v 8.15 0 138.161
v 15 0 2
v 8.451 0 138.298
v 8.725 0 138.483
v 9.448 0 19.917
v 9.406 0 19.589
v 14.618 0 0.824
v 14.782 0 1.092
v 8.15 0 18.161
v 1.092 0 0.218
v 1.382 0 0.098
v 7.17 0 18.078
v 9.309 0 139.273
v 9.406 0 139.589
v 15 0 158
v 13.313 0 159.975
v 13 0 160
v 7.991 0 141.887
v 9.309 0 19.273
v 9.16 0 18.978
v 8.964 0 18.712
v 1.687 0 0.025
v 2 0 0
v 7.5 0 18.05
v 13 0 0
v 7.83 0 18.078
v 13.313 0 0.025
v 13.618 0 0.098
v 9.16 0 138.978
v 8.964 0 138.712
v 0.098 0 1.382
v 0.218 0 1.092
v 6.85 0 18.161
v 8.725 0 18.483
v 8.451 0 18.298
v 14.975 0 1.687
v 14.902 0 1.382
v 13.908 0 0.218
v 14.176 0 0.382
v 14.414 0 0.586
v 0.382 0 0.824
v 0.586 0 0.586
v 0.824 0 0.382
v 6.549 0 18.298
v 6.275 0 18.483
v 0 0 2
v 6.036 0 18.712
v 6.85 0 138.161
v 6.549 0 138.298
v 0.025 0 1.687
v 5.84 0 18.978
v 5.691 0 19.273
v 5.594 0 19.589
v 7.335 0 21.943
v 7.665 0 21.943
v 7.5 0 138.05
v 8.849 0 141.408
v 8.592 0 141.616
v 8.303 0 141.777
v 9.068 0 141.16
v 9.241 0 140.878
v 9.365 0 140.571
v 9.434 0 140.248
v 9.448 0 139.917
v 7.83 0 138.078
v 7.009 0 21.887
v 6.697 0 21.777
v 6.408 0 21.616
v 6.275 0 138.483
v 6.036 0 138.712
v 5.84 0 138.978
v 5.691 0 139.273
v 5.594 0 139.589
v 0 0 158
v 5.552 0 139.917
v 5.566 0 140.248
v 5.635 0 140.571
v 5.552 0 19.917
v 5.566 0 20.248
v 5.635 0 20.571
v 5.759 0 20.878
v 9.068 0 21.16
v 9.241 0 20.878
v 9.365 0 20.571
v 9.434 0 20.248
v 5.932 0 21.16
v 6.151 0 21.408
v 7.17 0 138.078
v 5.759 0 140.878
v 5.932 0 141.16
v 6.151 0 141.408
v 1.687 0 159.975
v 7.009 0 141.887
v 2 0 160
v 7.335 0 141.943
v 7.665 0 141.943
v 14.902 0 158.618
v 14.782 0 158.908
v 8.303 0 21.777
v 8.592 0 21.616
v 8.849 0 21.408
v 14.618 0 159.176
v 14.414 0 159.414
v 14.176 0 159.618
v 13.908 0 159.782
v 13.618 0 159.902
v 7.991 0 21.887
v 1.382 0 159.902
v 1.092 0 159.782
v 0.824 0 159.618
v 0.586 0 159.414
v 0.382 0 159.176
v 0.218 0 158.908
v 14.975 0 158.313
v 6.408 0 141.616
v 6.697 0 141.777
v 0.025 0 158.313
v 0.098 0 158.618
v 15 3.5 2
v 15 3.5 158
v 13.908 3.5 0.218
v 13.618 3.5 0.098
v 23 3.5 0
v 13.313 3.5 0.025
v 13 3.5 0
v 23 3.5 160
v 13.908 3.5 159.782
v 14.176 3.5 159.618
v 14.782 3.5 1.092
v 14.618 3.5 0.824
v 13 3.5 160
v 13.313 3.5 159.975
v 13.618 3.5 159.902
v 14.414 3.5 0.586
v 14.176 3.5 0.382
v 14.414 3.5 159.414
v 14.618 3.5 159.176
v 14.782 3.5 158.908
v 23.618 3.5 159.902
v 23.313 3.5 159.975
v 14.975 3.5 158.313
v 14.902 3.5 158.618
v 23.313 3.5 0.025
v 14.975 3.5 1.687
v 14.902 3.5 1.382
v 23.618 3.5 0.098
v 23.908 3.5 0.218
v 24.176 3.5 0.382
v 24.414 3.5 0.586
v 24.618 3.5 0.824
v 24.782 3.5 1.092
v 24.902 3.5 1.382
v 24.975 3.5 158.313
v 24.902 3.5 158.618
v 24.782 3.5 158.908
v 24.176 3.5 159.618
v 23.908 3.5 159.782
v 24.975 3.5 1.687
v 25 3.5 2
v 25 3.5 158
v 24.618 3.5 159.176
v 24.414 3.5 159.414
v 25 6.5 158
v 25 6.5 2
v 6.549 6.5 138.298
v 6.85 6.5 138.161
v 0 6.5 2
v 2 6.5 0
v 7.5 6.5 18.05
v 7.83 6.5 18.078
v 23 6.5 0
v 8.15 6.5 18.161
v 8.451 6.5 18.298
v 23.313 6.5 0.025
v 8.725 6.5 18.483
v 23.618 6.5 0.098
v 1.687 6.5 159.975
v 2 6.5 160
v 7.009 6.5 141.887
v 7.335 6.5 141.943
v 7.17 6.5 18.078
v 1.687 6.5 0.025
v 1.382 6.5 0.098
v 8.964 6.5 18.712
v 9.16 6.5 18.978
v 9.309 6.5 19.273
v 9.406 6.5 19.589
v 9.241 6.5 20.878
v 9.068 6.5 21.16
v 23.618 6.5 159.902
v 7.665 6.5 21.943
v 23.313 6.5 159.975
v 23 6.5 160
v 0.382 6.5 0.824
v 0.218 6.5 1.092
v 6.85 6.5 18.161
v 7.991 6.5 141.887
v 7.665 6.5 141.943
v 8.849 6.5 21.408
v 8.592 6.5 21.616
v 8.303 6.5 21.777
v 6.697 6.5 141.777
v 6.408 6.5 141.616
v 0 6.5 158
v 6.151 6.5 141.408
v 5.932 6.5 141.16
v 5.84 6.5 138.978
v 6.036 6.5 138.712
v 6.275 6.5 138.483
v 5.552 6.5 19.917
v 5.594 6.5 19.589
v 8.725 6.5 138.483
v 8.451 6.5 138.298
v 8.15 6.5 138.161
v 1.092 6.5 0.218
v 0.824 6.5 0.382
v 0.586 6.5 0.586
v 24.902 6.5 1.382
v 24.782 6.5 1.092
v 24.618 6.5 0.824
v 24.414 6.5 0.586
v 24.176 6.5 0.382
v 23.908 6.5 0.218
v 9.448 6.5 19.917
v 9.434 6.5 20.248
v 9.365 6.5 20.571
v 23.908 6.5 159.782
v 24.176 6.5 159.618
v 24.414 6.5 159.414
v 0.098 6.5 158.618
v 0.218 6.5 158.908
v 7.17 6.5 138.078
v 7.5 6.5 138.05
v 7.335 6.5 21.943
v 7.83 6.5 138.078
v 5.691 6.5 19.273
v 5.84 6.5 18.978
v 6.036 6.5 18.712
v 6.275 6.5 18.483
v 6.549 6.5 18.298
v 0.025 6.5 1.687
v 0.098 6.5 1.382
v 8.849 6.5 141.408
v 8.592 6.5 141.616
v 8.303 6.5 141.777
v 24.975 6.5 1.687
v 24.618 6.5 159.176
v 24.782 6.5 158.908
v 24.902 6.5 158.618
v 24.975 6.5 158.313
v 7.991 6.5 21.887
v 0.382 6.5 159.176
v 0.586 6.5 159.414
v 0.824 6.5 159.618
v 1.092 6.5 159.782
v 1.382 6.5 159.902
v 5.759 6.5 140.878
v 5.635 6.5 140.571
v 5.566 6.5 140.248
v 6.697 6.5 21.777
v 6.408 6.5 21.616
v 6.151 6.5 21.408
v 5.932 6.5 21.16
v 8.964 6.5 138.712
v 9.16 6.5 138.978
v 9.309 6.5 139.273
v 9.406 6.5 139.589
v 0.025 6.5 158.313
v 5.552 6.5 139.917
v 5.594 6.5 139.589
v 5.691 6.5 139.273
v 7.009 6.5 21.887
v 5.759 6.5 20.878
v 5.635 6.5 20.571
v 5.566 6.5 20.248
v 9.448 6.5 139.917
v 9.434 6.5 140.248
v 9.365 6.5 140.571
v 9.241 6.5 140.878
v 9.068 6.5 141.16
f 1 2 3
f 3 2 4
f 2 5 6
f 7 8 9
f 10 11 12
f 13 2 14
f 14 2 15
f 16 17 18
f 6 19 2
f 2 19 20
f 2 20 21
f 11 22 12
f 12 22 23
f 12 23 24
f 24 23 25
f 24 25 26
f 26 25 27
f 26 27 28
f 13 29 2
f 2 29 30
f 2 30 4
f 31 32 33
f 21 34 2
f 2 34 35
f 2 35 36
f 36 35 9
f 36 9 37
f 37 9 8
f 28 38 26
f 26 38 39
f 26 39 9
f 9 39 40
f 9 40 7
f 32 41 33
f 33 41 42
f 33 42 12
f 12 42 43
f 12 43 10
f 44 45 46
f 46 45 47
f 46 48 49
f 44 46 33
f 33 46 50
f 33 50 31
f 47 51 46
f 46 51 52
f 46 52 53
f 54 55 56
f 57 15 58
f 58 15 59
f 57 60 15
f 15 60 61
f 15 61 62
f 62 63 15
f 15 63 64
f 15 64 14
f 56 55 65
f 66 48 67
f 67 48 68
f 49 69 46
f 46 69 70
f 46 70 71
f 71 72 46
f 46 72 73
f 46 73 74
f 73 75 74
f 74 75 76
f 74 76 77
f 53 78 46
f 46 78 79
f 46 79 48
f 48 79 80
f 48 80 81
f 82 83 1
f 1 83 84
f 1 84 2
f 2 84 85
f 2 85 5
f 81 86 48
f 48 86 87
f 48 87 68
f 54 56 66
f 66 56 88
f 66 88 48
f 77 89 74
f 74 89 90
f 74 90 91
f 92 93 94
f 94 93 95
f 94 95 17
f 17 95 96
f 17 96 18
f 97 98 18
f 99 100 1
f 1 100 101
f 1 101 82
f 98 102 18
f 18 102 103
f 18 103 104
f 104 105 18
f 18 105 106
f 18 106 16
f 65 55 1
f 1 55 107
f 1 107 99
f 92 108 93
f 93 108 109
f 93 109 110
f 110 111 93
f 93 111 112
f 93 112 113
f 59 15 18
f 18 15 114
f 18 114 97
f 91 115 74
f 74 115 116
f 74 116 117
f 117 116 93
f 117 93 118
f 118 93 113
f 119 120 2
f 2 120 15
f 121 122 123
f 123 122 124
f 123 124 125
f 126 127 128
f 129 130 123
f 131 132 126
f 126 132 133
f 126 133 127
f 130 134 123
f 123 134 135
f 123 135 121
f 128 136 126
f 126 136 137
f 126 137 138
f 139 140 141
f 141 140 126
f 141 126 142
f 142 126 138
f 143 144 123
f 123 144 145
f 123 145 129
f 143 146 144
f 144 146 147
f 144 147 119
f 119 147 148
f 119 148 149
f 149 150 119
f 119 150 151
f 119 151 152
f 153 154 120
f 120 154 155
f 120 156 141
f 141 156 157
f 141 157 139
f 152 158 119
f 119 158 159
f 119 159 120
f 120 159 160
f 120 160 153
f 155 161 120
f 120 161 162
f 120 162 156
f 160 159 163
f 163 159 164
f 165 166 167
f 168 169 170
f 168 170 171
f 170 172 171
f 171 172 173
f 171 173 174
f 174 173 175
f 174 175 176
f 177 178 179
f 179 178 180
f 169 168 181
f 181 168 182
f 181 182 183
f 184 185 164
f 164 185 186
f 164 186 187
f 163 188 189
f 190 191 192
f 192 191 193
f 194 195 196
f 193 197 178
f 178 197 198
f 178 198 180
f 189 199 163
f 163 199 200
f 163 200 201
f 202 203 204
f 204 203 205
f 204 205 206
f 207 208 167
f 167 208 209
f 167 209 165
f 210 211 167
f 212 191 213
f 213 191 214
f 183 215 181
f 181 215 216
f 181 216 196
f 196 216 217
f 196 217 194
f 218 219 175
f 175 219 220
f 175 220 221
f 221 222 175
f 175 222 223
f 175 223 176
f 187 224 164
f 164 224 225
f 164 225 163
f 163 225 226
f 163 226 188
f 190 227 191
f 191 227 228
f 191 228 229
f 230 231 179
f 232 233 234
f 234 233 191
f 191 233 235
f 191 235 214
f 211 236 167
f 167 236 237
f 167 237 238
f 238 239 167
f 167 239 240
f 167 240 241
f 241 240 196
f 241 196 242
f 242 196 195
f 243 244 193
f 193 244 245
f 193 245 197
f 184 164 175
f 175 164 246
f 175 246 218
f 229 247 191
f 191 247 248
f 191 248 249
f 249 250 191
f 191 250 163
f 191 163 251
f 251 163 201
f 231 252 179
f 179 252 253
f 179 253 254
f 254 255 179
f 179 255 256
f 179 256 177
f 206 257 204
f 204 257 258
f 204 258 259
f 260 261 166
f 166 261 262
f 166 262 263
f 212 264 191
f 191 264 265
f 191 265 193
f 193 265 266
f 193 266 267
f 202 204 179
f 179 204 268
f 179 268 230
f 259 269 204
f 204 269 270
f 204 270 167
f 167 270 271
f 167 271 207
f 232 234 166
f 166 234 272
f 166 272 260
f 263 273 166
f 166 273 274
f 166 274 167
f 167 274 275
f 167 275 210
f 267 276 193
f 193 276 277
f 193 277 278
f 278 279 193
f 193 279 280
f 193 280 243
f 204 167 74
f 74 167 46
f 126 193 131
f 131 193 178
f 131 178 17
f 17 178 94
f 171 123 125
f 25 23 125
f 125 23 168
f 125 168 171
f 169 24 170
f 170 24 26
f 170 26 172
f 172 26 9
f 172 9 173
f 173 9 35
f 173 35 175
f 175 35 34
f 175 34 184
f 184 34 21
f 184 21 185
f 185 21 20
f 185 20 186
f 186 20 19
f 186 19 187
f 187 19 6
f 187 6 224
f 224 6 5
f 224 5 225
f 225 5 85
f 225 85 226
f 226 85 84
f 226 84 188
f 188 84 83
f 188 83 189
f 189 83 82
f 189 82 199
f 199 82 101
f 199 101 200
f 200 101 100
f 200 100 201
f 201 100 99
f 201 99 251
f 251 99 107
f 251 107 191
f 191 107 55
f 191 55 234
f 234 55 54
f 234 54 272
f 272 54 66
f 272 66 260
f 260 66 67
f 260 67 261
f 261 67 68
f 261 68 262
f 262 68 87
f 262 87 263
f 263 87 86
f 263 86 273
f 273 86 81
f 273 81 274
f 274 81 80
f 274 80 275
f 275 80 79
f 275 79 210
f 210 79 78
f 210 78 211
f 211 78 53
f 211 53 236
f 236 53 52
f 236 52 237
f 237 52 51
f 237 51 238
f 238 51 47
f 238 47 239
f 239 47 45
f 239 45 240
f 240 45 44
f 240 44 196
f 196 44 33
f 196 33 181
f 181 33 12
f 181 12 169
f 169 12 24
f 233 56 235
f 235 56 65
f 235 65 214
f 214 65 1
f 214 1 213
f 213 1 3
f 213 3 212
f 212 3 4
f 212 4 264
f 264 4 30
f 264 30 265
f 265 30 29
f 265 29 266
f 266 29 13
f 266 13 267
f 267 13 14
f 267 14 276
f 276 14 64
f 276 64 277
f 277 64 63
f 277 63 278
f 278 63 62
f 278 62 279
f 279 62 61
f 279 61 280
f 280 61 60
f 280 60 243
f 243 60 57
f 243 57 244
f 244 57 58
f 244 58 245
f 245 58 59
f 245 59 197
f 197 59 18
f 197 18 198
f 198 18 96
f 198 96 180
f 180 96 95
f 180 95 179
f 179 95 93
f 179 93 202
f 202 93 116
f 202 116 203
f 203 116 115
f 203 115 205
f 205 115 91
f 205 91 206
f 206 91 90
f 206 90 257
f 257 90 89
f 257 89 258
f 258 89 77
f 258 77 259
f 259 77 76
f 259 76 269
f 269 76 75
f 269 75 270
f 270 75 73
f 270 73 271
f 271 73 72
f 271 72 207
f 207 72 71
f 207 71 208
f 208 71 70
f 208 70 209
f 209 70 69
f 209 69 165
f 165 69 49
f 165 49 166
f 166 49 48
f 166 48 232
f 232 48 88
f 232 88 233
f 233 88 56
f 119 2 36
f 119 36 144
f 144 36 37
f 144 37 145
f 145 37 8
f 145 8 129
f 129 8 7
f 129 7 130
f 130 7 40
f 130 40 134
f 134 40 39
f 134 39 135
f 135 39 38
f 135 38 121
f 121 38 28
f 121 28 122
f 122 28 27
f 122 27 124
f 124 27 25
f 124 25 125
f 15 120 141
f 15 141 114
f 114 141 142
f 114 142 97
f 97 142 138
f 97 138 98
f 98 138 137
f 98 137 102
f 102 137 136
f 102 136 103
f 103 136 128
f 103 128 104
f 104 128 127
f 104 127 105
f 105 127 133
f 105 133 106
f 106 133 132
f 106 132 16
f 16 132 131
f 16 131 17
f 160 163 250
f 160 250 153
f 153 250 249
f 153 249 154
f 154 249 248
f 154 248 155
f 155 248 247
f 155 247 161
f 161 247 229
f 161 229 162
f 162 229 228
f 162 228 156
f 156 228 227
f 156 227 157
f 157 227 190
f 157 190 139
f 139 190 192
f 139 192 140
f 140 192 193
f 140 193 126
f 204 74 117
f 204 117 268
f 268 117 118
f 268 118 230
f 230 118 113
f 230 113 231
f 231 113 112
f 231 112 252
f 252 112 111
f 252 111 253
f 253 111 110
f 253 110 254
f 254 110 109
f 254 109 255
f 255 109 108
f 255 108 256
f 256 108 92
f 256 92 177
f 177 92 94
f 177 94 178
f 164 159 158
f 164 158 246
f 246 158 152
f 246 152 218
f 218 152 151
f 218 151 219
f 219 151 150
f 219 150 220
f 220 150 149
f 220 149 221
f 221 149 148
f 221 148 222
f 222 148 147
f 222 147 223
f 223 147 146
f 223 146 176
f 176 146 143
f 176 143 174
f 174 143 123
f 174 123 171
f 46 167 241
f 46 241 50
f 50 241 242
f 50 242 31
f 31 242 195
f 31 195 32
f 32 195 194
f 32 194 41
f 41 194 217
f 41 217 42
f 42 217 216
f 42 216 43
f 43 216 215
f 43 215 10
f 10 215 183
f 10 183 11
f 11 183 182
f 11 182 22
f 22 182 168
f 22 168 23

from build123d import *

# Parameters (mm, degrees)
EXTRUDE_1_DEPTH     = 160
CUT_EXTRUDE_1_REACH = 164.072
SKETCH_2_R          = 1.95
FILLET_1_R          = 2


with BuildPart() as part:
    # 草图1 → 凸台-拉伸1 (new body)
    with BuildSketch(Plane.XY):
        Polygon((0, 0), (0, 6.5), (25, 6.5), (25, 3.5), (15, 3.5), (15, 0), align=None)
    extrude(amount=EXTRUDE_1_DEPTH)

    # 草图2 → 切除-拉伸1 (cut, up to next)
    with BuildSketch(Plane.XZ, mode=Mode.PRIVATE) as cut_extrude_1_sk1:
        with Locations(Location((7.5, 140, 0), (0, 0, 270))):
            Circle(SKETCH_2_R)
    cut_extrude_1_tool1 = extrude(cut_extrude_1_sk1.sketch, amount=-CUT_EXTRUDE_1_REACH, mode=Mode.PRIVATE) & part.part
    # 草图2 → 切除-拉伸1 (cut, up to next)
    with BuildSketch(Plane.XZ, mode=Mode.PRIVATE) as cut_extrude_1_sk2:
        with Locations(Location((7.5, 20, 0), (0, 0, 270))):
            Circle(SKETCH_2_R)
    cut_extrude_1_tool2 = extrude(cut_extrude_1_sk2.sketch, amount=-CUT_EXTRUDE_1_REACH, mode=Mode.PRIVATE) & part.part
    add(cut_extrude_1_tool1.solids().sort_by_distance((7.5, 0, 140))[0], mode=Mode.SUBTRACT)
    add(cut_extrude_1_tool2.solids().sort_by_distance((7.5, 0, 20))[0], mode=Mode.SUBTRACT)

    # 圆角1
    fillet_1_edges = [part.edges().sort_by_distance(p)[0] for p in [
        (25, 5, 160),
        (0, 3.25, 160),
        (0, 3.25, 0),
        (25, 5, 0),
        (15, 1.75, 0),
        (15, 1.75, 160),
    ]]
    fillet(fillet_1_edges, radius=FILLET_1_R)


solid = part.part
